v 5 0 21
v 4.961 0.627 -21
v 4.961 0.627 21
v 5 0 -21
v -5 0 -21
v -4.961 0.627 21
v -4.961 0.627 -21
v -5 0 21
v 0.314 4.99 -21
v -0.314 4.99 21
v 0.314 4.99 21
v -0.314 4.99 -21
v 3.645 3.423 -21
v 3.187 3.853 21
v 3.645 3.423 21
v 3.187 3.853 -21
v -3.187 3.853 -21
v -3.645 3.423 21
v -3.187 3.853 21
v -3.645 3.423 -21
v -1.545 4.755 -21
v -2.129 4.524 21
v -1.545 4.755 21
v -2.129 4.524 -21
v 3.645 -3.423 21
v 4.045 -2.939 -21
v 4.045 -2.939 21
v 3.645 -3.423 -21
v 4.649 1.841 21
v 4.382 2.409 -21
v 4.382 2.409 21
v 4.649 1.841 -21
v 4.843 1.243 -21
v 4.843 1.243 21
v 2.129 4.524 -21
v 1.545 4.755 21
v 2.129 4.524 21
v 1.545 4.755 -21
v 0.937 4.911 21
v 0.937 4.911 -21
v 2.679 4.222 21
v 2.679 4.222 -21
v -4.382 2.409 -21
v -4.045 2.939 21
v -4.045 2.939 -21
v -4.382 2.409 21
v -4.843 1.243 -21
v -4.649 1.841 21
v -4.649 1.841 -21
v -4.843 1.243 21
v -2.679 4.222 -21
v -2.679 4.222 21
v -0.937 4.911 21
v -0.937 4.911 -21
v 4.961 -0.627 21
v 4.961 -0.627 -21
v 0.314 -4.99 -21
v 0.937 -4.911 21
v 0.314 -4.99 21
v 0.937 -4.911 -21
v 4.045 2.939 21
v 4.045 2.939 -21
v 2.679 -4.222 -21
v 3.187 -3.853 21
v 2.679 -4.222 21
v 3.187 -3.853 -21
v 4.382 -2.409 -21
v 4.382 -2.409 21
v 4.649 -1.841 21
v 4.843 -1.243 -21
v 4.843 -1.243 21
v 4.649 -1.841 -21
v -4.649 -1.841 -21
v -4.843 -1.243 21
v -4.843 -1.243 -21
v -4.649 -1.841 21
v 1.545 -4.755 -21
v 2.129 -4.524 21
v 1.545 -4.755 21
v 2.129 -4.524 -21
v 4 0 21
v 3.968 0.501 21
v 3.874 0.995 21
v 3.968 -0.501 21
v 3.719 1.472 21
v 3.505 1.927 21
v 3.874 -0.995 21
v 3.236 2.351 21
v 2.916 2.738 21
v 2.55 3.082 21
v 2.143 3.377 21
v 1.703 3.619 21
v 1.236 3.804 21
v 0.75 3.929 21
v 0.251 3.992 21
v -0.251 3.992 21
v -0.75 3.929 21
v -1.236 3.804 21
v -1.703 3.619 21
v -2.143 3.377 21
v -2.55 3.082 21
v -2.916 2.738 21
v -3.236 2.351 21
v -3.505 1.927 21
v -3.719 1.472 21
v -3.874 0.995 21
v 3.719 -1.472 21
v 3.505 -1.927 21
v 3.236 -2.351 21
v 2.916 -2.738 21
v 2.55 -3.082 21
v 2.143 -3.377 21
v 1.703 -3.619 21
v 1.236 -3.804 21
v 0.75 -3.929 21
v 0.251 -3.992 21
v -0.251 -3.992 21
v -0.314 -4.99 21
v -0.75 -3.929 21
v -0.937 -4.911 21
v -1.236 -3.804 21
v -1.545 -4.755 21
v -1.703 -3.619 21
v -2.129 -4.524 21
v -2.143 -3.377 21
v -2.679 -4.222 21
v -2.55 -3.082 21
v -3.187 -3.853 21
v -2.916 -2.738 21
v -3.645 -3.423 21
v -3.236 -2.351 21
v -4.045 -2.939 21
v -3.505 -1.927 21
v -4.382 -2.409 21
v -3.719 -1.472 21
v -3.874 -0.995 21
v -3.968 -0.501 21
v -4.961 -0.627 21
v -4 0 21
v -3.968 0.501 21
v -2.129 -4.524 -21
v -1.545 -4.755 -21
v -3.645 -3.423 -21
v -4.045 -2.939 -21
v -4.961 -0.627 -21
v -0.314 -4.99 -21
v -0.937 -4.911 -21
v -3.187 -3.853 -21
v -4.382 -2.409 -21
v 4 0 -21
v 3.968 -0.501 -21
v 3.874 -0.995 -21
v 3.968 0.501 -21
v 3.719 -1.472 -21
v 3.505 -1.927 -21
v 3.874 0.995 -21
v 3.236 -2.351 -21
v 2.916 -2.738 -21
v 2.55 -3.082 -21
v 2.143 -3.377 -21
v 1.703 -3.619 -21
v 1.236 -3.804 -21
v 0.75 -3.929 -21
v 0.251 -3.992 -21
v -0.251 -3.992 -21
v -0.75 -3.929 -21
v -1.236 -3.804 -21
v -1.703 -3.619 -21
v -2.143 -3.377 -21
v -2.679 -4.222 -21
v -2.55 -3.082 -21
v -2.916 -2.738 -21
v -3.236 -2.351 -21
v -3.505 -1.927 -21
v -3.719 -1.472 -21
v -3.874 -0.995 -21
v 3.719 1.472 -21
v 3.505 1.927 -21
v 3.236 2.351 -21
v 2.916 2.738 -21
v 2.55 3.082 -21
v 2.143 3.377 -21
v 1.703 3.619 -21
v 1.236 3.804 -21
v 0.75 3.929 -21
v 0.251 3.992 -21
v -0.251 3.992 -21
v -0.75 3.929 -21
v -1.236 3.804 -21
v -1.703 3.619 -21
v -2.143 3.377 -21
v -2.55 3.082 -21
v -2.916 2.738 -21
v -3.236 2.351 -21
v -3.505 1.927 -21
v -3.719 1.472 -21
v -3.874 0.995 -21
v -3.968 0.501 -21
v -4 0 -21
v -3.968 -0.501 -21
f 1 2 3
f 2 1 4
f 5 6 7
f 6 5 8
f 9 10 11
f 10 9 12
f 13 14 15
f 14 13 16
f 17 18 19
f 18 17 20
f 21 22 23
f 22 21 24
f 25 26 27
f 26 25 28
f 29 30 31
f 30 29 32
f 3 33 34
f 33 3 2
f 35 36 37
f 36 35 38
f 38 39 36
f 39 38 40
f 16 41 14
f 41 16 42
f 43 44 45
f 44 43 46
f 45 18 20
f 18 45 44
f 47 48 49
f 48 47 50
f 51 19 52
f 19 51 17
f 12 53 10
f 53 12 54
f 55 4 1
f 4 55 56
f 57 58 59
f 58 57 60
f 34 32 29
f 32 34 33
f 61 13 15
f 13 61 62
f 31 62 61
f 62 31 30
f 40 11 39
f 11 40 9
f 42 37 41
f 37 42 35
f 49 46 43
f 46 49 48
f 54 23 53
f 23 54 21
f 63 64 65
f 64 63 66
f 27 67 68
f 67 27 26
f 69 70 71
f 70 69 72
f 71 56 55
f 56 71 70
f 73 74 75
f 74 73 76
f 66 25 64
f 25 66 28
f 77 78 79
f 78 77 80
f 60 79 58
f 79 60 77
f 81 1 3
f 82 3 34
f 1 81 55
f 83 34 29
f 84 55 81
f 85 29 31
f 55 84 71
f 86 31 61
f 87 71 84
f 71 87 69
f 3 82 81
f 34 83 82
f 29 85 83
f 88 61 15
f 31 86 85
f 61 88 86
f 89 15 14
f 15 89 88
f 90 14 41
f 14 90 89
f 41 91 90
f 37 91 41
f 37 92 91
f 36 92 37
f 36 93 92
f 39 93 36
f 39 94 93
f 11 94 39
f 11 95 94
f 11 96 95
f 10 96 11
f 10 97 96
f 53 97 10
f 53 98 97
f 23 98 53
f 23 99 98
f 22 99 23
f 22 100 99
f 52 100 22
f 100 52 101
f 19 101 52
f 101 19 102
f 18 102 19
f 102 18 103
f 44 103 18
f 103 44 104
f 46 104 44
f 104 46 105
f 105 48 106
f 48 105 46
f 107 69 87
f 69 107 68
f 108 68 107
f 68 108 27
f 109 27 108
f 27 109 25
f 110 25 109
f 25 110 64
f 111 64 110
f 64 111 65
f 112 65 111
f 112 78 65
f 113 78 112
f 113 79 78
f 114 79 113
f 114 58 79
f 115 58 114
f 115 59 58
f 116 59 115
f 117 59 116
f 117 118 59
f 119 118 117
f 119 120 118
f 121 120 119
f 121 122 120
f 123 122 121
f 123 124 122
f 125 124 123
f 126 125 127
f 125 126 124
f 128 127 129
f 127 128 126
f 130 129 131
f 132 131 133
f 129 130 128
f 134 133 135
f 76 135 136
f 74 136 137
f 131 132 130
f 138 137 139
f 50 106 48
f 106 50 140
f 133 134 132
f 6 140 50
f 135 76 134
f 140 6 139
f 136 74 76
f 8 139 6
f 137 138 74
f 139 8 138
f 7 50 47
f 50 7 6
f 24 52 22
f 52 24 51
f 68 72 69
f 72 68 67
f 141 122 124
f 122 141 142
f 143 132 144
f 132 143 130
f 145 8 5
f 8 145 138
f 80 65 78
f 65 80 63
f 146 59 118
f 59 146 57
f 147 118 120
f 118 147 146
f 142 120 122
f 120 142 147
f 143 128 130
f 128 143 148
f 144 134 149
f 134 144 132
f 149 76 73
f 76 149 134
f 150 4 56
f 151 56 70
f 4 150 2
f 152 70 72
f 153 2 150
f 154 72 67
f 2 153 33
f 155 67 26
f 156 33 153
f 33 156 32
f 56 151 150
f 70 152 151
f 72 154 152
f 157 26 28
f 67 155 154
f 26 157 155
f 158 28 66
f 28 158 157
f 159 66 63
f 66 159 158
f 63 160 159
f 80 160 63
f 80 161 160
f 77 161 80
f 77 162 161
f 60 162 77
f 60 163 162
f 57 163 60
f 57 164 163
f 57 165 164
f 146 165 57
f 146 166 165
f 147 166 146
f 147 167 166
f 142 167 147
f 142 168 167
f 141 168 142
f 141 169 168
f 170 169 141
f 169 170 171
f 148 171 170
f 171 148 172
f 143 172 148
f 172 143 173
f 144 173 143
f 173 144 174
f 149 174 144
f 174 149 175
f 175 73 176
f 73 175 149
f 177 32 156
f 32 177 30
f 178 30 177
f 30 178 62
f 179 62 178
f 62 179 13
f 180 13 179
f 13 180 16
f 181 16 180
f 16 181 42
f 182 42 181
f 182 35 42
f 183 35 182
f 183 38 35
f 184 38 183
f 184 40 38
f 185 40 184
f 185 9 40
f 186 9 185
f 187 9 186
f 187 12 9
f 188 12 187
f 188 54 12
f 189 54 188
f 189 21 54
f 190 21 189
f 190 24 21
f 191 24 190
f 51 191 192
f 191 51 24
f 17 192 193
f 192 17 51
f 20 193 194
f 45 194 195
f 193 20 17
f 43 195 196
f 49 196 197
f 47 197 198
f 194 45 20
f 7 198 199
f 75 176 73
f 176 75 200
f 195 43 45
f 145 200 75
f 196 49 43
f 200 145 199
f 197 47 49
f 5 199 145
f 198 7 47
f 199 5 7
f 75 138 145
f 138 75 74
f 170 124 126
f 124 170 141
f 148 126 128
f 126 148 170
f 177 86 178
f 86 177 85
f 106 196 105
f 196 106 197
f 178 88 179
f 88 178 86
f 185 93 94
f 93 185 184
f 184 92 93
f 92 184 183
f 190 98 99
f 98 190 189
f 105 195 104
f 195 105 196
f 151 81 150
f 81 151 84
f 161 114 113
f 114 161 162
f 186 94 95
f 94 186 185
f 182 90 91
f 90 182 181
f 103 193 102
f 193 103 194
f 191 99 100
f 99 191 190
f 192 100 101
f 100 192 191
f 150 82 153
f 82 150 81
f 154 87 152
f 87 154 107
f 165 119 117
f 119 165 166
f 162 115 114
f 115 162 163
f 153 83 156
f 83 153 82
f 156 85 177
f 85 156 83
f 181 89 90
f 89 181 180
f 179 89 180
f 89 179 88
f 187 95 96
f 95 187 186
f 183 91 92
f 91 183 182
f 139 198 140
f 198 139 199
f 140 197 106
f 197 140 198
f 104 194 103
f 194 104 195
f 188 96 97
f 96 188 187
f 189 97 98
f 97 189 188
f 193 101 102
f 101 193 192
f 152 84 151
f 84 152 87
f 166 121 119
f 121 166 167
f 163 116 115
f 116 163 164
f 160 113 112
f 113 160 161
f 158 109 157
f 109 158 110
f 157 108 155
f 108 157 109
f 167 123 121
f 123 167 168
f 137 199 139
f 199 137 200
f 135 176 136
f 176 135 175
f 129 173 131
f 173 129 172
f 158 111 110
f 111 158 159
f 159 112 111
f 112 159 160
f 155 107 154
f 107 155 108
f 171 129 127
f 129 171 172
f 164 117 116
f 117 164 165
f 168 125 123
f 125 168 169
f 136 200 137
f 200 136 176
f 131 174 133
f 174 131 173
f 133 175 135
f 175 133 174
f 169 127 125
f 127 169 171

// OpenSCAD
$fn = 50;


difference() {
	union() {
		translate(v = [0, 0, -21.0000000000]) {
			cylinder(h = 42, r = 5.0000000000);
		}
	}
	union() {
		translate(v = [0, 0, -100.0000000000]) {
			cylinder(h = 200, r = 4.0000000000);
		}
	}
}
